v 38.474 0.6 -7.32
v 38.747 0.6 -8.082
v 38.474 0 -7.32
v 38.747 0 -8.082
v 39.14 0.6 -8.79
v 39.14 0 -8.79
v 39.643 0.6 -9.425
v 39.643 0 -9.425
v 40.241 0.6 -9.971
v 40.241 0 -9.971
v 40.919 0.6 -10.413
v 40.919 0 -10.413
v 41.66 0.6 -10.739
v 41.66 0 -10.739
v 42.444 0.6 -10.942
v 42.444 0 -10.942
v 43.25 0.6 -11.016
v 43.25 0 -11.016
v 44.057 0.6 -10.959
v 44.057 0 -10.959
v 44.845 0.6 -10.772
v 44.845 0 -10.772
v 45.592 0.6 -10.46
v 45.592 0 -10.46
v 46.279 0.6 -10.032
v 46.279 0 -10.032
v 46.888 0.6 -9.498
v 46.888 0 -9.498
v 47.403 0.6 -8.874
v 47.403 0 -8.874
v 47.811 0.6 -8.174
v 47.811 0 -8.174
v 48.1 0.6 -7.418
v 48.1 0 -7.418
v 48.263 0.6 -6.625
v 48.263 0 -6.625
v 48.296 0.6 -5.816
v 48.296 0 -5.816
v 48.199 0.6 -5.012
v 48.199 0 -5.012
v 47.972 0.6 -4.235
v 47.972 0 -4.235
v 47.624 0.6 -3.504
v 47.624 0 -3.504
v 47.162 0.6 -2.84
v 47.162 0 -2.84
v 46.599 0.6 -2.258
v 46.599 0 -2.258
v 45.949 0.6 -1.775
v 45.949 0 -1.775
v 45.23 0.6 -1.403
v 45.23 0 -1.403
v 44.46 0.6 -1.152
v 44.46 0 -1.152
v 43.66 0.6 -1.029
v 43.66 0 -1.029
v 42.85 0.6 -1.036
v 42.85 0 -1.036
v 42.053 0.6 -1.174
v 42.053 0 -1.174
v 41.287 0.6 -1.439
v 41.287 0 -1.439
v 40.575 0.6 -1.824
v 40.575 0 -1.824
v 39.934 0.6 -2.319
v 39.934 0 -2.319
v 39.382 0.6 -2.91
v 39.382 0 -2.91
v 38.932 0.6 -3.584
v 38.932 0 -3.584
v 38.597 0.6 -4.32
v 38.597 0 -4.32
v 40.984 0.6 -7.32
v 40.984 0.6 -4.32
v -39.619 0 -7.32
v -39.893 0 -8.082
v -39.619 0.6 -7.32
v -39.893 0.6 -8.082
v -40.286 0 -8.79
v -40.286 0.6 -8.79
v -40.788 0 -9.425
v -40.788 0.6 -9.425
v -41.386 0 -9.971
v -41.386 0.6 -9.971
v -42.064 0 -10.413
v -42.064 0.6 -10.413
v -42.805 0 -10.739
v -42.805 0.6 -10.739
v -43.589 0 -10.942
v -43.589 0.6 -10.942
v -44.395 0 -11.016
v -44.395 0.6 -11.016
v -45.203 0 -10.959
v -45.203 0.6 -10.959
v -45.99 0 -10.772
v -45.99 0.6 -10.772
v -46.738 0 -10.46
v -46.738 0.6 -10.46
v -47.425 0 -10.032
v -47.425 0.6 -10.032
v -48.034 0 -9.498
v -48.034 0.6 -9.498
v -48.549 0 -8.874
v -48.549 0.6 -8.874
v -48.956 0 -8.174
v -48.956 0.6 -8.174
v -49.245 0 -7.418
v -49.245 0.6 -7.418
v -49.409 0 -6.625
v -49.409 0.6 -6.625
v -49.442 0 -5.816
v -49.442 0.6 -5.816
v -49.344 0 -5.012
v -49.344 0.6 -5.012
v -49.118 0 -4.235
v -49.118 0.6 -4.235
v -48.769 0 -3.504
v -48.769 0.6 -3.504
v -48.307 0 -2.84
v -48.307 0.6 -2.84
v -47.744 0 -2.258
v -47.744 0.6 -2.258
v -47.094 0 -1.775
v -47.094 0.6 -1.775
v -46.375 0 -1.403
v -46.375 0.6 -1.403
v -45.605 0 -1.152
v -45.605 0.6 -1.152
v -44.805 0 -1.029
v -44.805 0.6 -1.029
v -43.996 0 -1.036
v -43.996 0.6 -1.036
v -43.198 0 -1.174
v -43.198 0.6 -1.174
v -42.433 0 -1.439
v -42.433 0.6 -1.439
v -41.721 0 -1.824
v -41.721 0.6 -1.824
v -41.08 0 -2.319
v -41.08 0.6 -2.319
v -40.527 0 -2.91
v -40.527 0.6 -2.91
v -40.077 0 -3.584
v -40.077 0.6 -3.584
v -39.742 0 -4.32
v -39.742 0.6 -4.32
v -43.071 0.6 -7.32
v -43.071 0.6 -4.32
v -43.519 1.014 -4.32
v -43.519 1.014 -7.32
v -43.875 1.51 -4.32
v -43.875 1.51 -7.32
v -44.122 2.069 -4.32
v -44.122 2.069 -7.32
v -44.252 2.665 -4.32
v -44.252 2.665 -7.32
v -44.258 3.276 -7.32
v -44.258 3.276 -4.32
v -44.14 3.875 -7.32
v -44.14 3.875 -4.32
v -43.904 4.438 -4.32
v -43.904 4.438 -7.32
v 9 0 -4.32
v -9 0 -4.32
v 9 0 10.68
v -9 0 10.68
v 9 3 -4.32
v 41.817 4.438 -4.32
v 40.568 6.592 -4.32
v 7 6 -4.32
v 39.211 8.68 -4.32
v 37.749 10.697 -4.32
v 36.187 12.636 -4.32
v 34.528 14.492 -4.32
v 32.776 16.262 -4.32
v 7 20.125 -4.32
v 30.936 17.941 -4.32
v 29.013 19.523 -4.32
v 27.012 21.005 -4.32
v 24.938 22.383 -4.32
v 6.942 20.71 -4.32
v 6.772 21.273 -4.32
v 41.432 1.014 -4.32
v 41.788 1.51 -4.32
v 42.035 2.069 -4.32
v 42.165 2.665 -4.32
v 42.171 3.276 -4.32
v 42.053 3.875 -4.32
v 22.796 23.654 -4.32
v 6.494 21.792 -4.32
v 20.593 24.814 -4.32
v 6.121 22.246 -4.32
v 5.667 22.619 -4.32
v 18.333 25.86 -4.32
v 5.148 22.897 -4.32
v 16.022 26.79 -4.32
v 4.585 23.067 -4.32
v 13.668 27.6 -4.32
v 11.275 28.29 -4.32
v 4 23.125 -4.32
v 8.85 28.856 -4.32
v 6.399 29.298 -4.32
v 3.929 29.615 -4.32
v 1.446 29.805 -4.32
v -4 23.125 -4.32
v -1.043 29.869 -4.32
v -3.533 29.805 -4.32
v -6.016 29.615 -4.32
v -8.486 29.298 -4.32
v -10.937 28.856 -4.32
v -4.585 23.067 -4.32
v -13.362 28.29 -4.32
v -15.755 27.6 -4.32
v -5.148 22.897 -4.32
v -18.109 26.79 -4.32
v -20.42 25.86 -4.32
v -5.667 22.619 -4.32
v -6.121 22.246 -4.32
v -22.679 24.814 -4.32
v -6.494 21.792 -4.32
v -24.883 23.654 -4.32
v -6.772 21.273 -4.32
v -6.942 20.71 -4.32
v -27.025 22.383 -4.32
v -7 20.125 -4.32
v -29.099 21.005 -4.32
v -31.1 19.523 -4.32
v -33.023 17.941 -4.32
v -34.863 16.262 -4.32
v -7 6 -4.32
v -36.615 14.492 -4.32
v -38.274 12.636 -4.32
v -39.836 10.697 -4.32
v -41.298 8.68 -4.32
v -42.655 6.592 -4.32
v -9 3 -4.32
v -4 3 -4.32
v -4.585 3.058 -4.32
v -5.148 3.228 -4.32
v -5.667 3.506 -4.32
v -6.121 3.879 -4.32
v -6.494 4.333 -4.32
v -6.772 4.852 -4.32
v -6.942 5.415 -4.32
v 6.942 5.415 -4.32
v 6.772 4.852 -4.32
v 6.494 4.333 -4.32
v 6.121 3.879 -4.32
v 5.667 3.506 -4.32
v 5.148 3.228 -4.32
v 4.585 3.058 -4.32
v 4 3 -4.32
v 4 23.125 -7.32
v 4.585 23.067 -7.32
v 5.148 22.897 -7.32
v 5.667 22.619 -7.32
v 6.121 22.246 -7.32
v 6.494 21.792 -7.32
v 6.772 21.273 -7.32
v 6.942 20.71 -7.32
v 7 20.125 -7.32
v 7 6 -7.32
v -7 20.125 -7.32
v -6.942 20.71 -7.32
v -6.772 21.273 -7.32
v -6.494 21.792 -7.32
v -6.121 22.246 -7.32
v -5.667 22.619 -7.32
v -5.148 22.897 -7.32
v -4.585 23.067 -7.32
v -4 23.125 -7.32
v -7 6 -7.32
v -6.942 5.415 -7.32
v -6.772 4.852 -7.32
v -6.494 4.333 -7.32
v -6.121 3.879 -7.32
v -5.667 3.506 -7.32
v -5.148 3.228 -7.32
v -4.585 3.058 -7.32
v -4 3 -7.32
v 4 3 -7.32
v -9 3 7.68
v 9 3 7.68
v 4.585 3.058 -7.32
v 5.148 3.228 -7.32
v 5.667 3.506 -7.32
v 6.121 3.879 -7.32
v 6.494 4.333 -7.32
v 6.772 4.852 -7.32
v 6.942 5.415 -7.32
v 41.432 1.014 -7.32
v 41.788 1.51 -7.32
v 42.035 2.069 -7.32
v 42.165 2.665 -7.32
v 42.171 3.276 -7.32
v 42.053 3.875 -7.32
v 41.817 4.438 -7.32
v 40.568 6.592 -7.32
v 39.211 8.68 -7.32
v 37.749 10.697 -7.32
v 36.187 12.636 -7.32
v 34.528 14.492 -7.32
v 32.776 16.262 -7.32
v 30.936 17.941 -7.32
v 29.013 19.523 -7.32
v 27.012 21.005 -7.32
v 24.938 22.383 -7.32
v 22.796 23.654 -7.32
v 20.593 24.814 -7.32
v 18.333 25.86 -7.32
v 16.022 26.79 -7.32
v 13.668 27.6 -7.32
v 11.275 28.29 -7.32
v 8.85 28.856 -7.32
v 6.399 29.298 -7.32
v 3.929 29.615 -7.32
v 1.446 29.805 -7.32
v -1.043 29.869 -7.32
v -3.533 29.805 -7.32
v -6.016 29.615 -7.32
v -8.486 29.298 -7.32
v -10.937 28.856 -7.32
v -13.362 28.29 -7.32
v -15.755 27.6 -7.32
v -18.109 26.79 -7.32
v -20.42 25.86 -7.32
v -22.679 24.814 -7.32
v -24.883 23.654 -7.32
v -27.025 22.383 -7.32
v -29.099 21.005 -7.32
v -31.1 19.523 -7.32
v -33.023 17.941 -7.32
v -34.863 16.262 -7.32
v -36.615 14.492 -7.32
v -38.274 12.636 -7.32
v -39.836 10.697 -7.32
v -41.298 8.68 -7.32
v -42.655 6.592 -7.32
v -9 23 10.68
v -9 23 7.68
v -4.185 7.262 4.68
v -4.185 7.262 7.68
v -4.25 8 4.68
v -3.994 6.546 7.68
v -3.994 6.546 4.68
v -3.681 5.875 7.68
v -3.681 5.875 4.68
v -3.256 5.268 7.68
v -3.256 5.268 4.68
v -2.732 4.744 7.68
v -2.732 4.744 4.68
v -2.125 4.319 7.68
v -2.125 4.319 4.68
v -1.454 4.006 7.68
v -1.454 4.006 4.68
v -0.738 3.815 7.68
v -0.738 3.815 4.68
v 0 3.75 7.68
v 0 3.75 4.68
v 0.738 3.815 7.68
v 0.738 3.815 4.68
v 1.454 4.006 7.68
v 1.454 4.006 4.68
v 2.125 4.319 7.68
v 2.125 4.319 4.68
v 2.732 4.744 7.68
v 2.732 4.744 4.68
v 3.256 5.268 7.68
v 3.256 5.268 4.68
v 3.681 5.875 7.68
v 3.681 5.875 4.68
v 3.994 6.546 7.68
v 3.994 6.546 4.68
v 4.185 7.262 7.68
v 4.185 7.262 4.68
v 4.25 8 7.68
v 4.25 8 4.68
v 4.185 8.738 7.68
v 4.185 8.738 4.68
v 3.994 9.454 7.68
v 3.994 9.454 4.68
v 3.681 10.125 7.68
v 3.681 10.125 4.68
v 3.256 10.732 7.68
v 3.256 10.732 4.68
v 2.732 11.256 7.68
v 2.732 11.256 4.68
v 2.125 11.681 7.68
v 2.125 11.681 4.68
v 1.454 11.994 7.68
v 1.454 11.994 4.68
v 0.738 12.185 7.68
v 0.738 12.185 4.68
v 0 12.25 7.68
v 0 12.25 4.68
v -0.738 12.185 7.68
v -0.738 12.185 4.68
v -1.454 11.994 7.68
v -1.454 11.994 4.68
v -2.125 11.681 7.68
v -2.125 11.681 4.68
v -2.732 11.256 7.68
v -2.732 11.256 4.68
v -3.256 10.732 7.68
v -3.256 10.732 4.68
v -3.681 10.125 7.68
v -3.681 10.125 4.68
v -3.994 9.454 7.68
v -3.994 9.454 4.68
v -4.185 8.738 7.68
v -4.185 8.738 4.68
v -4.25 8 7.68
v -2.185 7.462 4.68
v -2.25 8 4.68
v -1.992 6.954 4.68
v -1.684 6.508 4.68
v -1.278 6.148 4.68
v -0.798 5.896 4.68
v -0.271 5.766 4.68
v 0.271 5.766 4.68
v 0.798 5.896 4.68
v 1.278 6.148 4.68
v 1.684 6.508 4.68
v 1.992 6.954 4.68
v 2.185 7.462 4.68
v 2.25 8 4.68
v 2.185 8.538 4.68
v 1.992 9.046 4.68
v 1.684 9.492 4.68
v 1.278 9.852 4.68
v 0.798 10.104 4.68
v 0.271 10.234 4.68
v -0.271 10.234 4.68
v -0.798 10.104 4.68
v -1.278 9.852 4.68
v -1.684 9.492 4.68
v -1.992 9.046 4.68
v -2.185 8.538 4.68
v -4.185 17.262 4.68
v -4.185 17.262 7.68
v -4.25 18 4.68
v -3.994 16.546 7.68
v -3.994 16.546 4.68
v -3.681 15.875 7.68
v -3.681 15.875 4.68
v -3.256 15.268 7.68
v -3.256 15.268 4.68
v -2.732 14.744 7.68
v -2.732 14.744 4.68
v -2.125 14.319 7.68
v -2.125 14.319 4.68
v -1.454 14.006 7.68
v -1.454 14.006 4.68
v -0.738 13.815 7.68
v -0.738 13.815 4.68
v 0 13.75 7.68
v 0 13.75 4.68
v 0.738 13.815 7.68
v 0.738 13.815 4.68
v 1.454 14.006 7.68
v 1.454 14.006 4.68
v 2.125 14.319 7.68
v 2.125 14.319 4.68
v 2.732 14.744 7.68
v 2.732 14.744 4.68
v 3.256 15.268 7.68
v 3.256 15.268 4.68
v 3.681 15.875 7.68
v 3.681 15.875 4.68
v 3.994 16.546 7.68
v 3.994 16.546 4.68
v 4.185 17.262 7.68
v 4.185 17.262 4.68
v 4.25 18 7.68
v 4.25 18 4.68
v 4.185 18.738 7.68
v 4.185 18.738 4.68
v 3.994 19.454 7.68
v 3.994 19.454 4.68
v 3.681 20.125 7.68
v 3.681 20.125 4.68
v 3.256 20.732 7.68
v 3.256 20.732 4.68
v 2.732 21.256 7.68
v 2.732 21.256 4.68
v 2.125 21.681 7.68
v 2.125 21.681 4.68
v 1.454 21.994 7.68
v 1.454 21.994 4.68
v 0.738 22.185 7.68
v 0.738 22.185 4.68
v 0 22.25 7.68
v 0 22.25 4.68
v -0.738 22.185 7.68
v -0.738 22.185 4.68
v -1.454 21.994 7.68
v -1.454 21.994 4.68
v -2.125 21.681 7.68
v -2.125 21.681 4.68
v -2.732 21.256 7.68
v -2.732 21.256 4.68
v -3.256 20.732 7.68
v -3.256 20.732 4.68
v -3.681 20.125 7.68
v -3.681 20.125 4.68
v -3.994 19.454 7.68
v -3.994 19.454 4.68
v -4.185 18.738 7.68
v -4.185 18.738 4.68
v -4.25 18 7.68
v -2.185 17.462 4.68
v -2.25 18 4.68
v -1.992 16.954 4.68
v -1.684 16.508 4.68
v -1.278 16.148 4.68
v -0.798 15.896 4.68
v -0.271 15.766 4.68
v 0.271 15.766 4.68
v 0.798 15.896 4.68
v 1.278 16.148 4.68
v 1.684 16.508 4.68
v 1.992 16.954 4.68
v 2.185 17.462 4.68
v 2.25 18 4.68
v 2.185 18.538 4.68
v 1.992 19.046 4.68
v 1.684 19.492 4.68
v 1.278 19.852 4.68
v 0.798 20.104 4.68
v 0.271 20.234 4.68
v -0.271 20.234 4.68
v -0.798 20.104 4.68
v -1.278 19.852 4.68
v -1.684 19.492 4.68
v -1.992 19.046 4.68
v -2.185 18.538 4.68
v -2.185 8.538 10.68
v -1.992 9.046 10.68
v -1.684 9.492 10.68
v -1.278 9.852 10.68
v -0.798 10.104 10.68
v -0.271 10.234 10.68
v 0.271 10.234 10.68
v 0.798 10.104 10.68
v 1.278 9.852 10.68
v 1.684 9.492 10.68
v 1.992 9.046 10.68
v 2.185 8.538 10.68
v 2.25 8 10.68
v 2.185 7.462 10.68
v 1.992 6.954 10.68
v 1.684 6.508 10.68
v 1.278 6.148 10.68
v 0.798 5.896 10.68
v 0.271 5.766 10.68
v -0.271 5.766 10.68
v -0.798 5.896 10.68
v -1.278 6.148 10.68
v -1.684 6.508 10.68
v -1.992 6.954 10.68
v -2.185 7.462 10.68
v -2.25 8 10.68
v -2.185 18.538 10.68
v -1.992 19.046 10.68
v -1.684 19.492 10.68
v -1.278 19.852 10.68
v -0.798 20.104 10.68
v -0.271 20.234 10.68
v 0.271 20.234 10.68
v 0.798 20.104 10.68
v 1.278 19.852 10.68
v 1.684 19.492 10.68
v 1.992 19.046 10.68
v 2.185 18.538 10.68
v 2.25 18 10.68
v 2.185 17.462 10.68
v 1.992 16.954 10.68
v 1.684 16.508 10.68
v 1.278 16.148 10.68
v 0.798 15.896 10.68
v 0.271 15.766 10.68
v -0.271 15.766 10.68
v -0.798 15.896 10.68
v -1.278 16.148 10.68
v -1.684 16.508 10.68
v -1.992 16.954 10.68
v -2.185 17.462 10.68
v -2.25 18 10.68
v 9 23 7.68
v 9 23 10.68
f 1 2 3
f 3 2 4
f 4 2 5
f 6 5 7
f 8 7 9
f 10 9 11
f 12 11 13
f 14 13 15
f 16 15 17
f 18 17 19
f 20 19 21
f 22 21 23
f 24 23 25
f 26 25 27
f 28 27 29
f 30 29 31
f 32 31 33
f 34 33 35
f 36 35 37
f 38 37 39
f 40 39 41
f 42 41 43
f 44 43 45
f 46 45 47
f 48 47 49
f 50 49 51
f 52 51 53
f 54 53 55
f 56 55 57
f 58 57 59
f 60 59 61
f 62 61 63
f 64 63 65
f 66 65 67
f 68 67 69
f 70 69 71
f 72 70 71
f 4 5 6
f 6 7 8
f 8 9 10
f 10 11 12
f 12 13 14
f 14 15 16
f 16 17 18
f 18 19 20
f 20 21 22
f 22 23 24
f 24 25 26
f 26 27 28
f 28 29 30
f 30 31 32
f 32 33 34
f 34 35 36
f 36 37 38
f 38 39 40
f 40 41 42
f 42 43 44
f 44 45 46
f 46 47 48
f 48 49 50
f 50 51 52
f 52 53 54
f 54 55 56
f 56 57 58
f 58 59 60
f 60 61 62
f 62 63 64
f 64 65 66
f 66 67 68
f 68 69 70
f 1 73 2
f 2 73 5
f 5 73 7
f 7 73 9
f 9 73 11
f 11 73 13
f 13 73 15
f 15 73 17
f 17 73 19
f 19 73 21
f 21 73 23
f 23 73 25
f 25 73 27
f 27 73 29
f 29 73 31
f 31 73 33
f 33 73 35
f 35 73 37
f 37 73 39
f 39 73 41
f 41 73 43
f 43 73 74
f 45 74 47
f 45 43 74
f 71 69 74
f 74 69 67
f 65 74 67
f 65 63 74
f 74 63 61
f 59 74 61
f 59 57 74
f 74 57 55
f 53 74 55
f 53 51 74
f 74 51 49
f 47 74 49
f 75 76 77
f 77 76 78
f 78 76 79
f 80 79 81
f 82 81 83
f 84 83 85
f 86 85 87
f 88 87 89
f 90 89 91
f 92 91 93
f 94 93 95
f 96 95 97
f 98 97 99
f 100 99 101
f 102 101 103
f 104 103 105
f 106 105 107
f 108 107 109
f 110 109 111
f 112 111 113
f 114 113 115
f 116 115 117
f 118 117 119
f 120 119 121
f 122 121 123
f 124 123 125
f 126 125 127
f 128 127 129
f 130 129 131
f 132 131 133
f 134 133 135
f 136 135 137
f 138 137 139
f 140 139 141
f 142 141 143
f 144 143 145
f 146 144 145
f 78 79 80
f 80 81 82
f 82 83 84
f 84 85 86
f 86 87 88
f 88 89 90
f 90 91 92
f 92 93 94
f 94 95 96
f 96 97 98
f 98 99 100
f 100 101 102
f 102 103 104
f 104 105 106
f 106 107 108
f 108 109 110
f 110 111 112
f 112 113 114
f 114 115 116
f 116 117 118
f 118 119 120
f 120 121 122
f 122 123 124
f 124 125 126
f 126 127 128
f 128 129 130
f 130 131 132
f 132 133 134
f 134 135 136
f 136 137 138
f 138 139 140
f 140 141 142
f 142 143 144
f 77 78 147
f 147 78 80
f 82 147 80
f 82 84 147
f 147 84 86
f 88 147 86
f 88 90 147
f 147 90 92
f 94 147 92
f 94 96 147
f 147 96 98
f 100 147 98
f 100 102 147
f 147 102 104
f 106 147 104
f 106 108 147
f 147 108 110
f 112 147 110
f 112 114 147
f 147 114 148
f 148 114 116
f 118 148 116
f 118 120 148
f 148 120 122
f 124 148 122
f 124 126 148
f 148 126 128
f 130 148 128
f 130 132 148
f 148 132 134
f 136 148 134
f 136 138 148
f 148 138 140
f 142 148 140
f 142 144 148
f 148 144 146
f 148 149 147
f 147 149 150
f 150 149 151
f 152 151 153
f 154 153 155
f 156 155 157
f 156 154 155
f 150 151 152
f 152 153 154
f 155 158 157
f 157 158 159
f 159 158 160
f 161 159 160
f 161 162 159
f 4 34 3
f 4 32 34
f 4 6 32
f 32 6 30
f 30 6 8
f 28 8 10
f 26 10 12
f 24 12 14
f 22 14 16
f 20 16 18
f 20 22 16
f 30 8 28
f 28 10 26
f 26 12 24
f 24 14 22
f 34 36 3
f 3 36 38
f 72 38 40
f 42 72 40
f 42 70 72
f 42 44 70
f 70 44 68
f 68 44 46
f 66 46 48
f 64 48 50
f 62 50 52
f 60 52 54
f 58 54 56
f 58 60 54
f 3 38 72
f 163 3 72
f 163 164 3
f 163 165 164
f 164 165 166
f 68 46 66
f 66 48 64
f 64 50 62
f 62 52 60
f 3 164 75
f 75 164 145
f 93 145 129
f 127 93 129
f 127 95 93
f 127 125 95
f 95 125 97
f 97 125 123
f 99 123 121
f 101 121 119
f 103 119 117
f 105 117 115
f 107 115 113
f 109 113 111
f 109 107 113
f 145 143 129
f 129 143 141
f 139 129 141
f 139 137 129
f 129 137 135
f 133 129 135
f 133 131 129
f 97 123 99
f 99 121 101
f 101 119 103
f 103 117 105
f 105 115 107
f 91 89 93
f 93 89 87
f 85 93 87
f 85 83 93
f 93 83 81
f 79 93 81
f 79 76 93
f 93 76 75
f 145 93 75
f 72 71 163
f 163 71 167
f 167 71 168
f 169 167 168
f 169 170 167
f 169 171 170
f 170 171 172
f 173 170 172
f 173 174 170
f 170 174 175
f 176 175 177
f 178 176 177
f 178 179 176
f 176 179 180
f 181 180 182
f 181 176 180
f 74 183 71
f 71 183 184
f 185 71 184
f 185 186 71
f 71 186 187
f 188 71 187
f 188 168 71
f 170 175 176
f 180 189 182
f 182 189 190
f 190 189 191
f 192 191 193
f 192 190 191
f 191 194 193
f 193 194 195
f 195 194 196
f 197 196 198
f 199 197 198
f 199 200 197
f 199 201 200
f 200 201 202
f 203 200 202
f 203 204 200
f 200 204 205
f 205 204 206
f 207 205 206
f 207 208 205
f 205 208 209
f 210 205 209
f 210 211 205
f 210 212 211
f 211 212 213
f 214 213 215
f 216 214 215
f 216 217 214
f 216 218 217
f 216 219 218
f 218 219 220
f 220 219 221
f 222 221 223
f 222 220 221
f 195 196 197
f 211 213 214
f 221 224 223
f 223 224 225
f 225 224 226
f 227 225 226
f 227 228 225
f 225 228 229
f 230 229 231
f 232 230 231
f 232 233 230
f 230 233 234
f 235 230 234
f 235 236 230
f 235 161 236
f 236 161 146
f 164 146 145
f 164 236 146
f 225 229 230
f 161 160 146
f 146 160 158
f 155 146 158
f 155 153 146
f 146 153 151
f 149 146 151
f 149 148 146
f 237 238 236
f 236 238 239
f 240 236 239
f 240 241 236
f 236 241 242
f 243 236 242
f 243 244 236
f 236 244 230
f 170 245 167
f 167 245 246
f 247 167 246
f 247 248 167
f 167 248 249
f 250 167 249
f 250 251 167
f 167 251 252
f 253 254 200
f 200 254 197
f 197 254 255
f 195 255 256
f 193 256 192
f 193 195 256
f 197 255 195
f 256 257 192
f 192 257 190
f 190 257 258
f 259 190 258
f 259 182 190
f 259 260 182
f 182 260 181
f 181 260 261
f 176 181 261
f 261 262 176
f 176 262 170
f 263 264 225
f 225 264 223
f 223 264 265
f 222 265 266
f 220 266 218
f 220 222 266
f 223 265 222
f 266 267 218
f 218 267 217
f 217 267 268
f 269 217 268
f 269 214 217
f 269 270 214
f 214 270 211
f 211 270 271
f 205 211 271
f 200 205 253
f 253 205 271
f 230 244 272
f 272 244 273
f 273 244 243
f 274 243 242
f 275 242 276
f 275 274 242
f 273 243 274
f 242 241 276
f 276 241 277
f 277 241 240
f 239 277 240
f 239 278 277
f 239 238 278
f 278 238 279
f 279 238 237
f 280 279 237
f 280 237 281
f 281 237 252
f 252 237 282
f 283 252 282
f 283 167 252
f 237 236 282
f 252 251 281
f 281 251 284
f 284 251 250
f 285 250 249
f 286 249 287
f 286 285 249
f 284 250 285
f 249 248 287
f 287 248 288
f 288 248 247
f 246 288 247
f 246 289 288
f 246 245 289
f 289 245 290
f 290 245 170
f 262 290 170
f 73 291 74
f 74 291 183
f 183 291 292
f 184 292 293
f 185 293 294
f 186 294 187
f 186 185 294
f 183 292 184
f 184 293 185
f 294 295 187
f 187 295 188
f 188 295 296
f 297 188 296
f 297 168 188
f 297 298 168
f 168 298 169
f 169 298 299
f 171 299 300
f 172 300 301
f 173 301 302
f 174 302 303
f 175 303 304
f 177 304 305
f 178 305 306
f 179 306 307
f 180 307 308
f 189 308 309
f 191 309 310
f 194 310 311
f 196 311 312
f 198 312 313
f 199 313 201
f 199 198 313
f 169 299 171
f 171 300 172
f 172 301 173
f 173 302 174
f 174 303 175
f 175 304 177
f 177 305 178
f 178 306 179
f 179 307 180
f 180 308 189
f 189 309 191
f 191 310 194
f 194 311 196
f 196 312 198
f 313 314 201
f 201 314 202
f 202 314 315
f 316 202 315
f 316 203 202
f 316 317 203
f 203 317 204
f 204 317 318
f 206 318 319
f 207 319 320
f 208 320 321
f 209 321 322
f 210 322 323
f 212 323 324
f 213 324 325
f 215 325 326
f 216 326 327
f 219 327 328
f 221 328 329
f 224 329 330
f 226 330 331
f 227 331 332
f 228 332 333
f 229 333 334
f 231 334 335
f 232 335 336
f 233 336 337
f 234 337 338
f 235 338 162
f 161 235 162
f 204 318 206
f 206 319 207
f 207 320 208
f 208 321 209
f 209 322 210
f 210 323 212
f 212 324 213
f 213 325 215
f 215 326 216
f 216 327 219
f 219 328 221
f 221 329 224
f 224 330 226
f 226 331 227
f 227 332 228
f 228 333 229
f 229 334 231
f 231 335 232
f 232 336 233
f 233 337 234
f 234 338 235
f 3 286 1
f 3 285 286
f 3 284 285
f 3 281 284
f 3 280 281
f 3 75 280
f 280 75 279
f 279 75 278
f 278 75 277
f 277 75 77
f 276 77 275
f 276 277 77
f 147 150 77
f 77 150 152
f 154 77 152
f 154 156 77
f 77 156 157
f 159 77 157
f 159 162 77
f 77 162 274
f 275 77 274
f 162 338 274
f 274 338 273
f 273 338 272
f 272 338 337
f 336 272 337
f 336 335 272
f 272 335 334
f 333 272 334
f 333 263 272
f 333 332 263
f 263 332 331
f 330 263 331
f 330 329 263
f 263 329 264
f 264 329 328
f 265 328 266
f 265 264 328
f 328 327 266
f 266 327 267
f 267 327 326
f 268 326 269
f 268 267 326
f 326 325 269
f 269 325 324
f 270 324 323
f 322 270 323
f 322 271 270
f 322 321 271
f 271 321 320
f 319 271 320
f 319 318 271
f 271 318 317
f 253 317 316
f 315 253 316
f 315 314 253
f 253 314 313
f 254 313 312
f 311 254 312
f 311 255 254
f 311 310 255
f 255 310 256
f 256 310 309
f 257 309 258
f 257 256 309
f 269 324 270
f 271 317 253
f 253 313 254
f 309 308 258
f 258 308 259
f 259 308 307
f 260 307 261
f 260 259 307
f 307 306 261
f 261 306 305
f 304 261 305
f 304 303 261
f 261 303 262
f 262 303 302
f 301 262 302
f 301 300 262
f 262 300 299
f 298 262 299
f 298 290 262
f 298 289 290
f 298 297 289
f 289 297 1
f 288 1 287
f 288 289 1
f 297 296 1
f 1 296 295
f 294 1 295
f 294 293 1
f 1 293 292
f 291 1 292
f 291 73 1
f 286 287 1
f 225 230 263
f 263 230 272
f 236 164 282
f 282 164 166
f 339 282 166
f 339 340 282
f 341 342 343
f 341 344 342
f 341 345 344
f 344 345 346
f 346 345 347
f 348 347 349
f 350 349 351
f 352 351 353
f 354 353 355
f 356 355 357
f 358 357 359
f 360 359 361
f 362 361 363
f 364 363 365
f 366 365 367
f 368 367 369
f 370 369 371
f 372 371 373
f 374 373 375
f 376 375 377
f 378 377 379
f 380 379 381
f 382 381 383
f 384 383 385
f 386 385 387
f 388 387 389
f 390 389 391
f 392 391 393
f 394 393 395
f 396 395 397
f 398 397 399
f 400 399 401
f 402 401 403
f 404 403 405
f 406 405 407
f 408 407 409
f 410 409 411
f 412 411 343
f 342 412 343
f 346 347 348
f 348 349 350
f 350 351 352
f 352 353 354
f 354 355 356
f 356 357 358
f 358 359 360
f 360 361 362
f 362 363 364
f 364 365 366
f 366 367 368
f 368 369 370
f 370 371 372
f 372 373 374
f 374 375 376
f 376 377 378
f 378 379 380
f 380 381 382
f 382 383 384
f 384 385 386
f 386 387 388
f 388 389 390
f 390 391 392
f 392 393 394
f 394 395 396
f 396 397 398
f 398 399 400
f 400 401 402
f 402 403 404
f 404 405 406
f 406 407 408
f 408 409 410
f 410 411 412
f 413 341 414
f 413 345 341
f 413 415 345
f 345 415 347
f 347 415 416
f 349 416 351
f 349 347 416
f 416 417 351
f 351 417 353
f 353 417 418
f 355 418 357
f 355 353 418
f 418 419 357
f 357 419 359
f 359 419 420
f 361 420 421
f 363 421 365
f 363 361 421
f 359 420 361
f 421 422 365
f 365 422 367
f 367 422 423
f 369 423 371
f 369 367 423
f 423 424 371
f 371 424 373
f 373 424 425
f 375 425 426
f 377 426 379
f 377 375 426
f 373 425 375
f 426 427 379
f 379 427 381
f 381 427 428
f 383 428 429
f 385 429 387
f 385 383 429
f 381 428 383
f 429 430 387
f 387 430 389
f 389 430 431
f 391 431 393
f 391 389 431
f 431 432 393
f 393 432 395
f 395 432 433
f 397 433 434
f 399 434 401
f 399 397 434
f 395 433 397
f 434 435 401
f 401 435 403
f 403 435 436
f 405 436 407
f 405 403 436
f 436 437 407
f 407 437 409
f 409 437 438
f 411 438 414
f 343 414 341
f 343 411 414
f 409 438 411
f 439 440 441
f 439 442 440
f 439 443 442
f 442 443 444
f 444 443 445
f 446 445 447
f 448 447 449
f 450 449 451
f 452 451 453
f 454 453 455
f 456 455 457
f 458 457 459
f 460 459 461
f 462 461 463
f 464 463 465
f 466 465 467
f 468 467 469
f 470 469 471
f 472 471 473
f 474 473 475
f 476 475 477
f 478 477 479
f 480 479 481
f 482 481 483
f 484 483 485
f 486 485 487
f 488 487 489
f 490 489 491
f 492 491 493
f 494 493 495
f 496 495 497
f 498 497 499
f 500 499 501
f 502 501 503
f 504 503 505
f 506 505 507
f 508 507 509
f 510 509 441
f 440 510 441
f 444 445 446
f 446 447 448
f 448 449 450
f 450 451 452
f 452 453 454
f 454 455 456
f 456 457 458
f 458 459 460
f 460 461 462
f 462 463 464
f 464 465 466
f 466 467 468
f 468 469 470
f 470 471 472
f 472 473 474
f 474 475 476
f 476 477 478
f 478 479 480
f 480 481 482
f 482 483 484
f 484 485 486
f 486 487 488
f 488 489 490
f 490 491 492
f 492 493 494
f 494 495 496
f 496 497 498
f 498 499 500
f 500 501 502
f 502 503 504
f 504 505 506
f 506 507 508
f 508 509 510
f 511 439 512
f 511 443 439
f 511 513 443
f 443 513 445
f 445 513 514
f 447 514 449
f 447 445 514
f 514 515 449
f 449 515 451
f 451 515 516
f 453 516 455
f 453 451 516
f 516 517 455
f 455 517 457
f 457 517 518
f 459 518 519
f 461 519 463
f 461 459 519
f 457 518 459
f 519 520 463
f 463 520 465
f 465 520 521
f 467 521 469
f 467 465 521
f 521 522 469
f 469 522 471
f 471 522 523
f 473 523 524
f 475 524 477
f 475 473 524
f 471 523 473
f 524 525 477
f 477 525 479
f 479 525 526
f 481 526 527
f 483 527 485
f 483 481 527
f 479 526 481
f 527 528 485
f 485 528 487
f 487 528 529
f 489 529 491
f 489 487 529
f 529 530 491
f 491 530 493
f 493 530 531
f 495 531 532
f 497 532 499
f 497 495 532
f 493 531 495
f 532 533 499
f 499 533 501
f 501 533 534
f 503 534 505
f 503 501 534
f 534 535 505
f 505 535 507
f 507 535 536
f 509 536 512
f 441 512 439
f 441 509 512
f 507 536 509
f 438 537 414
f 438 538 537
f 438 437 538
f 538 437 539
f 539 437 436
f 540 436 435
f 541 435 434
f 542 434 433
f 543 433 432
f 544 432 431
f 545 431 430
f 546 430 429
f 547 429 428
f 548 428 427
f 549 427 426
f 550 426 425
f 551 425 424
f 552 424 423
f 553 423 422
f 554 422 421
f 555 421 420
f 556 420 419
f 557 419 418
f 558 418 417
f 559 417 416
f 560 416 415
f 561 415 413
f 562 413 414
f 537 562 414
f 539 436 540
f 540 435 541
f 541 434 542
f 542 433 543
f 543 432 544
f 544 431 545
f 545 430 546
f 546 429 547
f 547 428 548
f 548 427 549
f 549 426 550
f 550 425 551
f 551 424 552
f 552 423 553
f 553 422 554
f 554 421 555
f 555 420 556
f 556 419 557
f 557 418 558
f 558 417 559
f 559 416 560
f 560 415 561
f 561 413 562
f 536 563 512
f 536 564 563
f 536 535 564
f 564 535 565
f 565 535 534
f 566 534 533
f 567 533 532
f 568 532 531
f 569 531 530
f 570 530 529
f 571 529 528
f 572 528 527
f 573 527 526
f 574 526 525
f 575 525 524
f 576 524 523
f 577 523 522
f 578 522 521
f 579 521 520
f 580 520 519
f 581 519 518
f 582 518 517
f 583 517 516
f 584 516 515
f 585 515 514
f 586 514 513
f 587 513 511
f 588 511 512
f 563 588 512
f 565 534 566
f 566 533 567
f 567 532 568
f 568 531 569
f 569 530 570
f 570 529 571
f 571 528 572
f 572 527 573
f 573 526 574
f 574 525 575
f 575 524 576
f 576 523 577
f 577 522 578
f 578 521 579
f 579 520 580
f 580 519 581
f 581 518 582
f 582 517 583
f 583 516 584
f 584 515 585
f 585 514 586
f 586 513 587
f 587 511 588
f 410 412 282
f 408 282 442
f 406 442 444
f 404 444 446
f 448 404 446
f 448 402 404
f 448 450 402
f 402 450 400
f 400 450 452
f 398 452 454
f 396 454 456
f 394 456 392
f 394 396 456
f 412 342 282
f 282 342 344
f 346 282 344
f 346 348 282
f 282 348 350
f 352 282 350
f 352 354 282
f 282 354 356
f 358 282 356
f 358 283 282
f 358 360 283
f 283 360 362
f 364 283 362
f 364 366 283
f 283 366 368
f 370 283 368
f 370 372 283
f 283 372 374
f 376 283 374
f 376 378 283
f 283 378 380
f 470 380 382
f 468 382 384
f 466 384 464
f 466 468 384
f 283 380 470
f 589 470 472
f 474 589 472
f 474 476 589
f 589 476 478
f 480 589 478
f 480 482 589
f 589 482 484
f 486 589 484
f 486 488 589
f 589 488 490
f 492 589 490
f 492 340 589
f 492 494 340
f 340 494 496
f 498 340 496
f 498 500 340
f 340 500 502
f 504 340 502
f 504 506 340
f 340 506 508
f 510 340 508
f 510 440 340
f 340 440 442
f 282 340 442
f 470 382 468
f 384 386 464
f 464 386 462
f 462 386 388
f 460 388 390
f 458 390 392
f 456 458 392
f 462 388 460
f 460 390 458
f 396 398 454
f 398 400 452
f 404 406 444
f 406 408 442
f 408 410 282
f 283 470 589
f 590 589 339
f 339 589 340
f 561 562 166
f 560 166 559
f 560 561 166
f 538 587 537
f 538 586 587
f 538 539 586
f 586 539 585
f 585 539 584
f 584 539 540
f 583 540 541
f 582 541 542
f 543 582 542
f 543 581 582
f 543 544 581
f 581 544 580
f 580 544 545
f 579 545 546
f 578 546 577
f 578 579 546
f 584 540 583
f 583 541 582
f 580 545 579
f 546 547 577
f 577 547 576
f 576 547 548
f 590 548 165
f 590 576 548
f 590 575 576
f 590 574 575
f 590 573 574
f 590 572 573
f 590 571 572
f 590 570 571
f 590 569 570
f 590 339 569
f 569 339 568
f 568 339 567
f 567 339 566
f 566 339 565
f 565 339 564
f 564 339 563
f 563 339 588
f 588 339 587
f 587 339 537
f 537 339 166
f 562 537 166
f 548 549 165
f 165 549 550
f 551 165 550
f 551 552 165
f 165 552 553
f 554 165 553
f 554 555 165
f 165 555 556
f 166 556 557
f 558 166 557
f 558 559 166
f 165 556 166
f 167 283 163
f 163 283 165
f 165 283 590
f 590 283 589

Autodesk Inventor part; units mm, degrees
ref_plane "YZ Plane" through (0, 0, 0) normal (1, 0, 0) x (0, 1, 0)
ref_plane "XZ Plane" through (0, 0, 0) normal (0, 1, 0) x (-1, 0, 0)
ref_plane "XY Plane" through (0, 0, 0) normal (0, 0, 1) x (1, 0, 0)
sketch "Sketch1" plane through (0, 0, 0) normal (0, 1, 0) x (-1, 0, 0)
  line L0 (-9, 10.6795) -> (9, 10.6795)
  line L1 (9, 10.6795) -> (9, -4.7118)
  line L2 (9, -4.7118) -> (-9, -4.7118)
  line L3 (-9, -4.7118) -> (-9, 10.6795)
  line L4 (-9, 7.6795) -> (9, 7.6795)
  line L5 (-31.4348, -4.7118) -> (33.5217, -4.7118)
  line L6 (33.5217, -4.7118) -> (33.5217, -7.3205)
  line L7 (33.5217, -7.3205) -> (-31.4348, -7.3205)
  line L8 (-31.4348, -7.3205) -> (-31.4348, -4.7118)
  circle A0 centre (-43.3004, -6.0161) radius 5
  circle A1 centre (44.4458, -6.0161) radius 5
  point P0 (0, 0)
  point P1 (0, 7.6795)
  dimension "d6" = 3
  dimension "d7" = 18
  dimension "d8" = 18
  dimension "d34" = 10
  dimension "d35" = 10
extrude "Extrusion2" add sketch "Sketch1" along normal blind 3 contours L0 L1 L4 L3 | L4 L1 L2 L3 | L2 L5 L6 L7 L8
extrude "Extrusion3" add sketch "Sketch1" along normal blind 23 contours L0 L1 L4 L3
sketch "Sketch2" plane through (9, 3, 7.6795) normal (0, 0, -1) x (-1, 0, 0)
  line L0 (18, 0) -> (0, 0) projected
  line L1 (0, 20) -> (18, 20) projected
  circle A0 centre (9, 15) radius 2.25
  circle A1 centre (9, 5) radius 2.25
  circle A2 centre (9, 5) radius 4.25
  circle A3 centre (9, 15) radius 4.25
  point P0 (9, -3)
  point P1 (9, 20)
  point P2 (9, 0)
  dimension "d15" = 4.5
  dimension "d16" = 4.5
  dimension "d17" = 5
  dimension "d18" = 5
  dimension "d19" = 2
  dimension "d20" = 2
extrude "Extrusion4" cut sketch "Sketch2" against normal blind 3 contours A0 | A1
extrude "Extrusion5" add sketch "Sketch2" along normal blind 3
sketch "Sketch3" plane through (31.4348, 0, -7.3205) normal (0, 0, -1) x (-1, 0, 0)
  line L0 (64.9565, 0) -> (0, 0) projected
  line L1 (0, 3) -> (64.9565, 3) projected
  line L2 (24.4348, 23.1251) -> (38.4348, 23.1251)
  line L3 (38.4348, 23.1251) -> (38.4348, 3)
  line L4 (38.4348, 3) -> (24.4348, 3)
  line L5 (24.4348, 3) -> (24.4348, 23.1251)
  circle A0 centre (31.4348, 18) radius 2.25 projected
  circle A1 centre (31.4348, 8) radius 2.25 projected
  line L6 (0, 0) -> (0, 3) projected
  line L7 (-12.5217, -12.4797) -> (77.4783, -12.4797) construction
  arc A2 (77.4783, 0) -> (-12.5217, 0) centre (32.4783, -18.9639) ccw
  line L8 (-12.5217, 0) -> (77.4783, 0)
  point P0 (31.4348, 0)
  point P1 (32.4783, -12.4797)
  point P2 (32.4783, 0)
  dimension "d27" = 7
  dimension "d28" = 7
  dimension "d29" = 90
extrude "Extrusion6" add sketch "Sketch3" against normal blind 3 contours L0 L8 A2
fillet "Fillet1" radius 3 2 edges at (-46.0435, 0, -5.8205) (43.9565, 0, -5.8205)
fillet "Fillet2" radius 3 4 edges at (7, 3, -5.8205) (-7, 3, -5.8205) (-7, 23.1251, -5.8205) (7, 23.1251, -5.8205)
extrude "Extrusion8" add sketch "Sketch1" along normal blind 0.6 contours A0 | A1
properties part number "ZFoot"
